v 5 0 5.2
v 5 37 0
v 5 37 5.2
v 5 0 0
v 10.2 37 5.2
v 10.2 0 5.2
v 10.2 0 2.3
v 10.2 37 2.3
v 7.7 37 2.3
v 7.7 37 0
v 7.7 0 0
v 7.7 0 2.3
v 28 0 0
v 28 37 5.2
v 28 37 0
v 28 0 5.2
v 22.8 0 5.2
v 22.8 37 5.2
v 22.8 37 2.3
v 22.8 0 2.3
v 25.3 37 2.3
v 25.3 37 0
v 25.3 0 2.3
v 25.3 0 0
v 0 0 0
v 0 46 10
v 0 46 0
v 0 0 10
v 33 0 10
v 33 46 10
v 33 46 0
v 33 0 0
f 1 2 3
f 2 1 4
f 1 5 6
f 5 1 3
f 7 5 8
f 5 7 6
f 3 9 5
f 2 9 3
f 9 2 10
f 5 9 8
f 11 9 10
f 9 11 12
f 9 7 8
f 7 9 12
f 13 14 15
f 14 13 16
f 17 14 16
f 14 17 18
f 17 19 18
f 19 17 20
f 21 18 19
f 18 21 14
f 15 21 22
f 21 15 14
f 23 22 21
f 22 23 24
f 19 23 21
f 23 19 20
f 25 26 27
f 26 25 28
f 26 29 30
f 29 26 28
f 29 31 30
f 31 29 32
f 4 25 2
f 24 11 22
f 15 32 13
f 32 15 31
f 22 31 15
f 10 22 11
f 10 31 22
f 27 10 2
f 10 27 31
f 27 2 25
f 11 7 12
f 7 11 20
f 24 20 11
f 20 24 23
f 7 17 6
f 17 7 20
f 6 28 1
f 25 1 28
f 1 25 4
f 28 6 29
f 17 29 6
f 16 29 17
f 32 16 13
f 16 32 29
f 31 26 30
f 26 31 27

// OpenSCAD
// This is the basic starter file for the rails on the suction cup mount
// You can add other objects to this to bridge them to the mount

internalWidth = 18;
internalHeight = 25;
internalDepth = 2;

externalWidth = 23;
externalHeight = 36;
externalDepth = 5;

thickness=5;
difference() {
    cube([externalWidth+thickness+thickness, externalHeight+thickness+thickness, externalDepth+thickness]);
    rails(thickness);	
}

// provides mounting for a single rail
module rail() {
	difference() {
		translate([0, 0, -1]) {
			cube([5.2, 38, 6.2]);
		}
		translate([2.7, -1, -0.7]) {
			cube([3, 40, 3]);
		}
	}
}

// provides mounting for a pair of rails, separated correctly
module rails(thickness) {
	translate([thickness, -1, 0]) {
		rail();
		translate([23, 0, 0]) {
			mirror([1, 0, 0]) {
				rail();
			}
		}
	}
}
